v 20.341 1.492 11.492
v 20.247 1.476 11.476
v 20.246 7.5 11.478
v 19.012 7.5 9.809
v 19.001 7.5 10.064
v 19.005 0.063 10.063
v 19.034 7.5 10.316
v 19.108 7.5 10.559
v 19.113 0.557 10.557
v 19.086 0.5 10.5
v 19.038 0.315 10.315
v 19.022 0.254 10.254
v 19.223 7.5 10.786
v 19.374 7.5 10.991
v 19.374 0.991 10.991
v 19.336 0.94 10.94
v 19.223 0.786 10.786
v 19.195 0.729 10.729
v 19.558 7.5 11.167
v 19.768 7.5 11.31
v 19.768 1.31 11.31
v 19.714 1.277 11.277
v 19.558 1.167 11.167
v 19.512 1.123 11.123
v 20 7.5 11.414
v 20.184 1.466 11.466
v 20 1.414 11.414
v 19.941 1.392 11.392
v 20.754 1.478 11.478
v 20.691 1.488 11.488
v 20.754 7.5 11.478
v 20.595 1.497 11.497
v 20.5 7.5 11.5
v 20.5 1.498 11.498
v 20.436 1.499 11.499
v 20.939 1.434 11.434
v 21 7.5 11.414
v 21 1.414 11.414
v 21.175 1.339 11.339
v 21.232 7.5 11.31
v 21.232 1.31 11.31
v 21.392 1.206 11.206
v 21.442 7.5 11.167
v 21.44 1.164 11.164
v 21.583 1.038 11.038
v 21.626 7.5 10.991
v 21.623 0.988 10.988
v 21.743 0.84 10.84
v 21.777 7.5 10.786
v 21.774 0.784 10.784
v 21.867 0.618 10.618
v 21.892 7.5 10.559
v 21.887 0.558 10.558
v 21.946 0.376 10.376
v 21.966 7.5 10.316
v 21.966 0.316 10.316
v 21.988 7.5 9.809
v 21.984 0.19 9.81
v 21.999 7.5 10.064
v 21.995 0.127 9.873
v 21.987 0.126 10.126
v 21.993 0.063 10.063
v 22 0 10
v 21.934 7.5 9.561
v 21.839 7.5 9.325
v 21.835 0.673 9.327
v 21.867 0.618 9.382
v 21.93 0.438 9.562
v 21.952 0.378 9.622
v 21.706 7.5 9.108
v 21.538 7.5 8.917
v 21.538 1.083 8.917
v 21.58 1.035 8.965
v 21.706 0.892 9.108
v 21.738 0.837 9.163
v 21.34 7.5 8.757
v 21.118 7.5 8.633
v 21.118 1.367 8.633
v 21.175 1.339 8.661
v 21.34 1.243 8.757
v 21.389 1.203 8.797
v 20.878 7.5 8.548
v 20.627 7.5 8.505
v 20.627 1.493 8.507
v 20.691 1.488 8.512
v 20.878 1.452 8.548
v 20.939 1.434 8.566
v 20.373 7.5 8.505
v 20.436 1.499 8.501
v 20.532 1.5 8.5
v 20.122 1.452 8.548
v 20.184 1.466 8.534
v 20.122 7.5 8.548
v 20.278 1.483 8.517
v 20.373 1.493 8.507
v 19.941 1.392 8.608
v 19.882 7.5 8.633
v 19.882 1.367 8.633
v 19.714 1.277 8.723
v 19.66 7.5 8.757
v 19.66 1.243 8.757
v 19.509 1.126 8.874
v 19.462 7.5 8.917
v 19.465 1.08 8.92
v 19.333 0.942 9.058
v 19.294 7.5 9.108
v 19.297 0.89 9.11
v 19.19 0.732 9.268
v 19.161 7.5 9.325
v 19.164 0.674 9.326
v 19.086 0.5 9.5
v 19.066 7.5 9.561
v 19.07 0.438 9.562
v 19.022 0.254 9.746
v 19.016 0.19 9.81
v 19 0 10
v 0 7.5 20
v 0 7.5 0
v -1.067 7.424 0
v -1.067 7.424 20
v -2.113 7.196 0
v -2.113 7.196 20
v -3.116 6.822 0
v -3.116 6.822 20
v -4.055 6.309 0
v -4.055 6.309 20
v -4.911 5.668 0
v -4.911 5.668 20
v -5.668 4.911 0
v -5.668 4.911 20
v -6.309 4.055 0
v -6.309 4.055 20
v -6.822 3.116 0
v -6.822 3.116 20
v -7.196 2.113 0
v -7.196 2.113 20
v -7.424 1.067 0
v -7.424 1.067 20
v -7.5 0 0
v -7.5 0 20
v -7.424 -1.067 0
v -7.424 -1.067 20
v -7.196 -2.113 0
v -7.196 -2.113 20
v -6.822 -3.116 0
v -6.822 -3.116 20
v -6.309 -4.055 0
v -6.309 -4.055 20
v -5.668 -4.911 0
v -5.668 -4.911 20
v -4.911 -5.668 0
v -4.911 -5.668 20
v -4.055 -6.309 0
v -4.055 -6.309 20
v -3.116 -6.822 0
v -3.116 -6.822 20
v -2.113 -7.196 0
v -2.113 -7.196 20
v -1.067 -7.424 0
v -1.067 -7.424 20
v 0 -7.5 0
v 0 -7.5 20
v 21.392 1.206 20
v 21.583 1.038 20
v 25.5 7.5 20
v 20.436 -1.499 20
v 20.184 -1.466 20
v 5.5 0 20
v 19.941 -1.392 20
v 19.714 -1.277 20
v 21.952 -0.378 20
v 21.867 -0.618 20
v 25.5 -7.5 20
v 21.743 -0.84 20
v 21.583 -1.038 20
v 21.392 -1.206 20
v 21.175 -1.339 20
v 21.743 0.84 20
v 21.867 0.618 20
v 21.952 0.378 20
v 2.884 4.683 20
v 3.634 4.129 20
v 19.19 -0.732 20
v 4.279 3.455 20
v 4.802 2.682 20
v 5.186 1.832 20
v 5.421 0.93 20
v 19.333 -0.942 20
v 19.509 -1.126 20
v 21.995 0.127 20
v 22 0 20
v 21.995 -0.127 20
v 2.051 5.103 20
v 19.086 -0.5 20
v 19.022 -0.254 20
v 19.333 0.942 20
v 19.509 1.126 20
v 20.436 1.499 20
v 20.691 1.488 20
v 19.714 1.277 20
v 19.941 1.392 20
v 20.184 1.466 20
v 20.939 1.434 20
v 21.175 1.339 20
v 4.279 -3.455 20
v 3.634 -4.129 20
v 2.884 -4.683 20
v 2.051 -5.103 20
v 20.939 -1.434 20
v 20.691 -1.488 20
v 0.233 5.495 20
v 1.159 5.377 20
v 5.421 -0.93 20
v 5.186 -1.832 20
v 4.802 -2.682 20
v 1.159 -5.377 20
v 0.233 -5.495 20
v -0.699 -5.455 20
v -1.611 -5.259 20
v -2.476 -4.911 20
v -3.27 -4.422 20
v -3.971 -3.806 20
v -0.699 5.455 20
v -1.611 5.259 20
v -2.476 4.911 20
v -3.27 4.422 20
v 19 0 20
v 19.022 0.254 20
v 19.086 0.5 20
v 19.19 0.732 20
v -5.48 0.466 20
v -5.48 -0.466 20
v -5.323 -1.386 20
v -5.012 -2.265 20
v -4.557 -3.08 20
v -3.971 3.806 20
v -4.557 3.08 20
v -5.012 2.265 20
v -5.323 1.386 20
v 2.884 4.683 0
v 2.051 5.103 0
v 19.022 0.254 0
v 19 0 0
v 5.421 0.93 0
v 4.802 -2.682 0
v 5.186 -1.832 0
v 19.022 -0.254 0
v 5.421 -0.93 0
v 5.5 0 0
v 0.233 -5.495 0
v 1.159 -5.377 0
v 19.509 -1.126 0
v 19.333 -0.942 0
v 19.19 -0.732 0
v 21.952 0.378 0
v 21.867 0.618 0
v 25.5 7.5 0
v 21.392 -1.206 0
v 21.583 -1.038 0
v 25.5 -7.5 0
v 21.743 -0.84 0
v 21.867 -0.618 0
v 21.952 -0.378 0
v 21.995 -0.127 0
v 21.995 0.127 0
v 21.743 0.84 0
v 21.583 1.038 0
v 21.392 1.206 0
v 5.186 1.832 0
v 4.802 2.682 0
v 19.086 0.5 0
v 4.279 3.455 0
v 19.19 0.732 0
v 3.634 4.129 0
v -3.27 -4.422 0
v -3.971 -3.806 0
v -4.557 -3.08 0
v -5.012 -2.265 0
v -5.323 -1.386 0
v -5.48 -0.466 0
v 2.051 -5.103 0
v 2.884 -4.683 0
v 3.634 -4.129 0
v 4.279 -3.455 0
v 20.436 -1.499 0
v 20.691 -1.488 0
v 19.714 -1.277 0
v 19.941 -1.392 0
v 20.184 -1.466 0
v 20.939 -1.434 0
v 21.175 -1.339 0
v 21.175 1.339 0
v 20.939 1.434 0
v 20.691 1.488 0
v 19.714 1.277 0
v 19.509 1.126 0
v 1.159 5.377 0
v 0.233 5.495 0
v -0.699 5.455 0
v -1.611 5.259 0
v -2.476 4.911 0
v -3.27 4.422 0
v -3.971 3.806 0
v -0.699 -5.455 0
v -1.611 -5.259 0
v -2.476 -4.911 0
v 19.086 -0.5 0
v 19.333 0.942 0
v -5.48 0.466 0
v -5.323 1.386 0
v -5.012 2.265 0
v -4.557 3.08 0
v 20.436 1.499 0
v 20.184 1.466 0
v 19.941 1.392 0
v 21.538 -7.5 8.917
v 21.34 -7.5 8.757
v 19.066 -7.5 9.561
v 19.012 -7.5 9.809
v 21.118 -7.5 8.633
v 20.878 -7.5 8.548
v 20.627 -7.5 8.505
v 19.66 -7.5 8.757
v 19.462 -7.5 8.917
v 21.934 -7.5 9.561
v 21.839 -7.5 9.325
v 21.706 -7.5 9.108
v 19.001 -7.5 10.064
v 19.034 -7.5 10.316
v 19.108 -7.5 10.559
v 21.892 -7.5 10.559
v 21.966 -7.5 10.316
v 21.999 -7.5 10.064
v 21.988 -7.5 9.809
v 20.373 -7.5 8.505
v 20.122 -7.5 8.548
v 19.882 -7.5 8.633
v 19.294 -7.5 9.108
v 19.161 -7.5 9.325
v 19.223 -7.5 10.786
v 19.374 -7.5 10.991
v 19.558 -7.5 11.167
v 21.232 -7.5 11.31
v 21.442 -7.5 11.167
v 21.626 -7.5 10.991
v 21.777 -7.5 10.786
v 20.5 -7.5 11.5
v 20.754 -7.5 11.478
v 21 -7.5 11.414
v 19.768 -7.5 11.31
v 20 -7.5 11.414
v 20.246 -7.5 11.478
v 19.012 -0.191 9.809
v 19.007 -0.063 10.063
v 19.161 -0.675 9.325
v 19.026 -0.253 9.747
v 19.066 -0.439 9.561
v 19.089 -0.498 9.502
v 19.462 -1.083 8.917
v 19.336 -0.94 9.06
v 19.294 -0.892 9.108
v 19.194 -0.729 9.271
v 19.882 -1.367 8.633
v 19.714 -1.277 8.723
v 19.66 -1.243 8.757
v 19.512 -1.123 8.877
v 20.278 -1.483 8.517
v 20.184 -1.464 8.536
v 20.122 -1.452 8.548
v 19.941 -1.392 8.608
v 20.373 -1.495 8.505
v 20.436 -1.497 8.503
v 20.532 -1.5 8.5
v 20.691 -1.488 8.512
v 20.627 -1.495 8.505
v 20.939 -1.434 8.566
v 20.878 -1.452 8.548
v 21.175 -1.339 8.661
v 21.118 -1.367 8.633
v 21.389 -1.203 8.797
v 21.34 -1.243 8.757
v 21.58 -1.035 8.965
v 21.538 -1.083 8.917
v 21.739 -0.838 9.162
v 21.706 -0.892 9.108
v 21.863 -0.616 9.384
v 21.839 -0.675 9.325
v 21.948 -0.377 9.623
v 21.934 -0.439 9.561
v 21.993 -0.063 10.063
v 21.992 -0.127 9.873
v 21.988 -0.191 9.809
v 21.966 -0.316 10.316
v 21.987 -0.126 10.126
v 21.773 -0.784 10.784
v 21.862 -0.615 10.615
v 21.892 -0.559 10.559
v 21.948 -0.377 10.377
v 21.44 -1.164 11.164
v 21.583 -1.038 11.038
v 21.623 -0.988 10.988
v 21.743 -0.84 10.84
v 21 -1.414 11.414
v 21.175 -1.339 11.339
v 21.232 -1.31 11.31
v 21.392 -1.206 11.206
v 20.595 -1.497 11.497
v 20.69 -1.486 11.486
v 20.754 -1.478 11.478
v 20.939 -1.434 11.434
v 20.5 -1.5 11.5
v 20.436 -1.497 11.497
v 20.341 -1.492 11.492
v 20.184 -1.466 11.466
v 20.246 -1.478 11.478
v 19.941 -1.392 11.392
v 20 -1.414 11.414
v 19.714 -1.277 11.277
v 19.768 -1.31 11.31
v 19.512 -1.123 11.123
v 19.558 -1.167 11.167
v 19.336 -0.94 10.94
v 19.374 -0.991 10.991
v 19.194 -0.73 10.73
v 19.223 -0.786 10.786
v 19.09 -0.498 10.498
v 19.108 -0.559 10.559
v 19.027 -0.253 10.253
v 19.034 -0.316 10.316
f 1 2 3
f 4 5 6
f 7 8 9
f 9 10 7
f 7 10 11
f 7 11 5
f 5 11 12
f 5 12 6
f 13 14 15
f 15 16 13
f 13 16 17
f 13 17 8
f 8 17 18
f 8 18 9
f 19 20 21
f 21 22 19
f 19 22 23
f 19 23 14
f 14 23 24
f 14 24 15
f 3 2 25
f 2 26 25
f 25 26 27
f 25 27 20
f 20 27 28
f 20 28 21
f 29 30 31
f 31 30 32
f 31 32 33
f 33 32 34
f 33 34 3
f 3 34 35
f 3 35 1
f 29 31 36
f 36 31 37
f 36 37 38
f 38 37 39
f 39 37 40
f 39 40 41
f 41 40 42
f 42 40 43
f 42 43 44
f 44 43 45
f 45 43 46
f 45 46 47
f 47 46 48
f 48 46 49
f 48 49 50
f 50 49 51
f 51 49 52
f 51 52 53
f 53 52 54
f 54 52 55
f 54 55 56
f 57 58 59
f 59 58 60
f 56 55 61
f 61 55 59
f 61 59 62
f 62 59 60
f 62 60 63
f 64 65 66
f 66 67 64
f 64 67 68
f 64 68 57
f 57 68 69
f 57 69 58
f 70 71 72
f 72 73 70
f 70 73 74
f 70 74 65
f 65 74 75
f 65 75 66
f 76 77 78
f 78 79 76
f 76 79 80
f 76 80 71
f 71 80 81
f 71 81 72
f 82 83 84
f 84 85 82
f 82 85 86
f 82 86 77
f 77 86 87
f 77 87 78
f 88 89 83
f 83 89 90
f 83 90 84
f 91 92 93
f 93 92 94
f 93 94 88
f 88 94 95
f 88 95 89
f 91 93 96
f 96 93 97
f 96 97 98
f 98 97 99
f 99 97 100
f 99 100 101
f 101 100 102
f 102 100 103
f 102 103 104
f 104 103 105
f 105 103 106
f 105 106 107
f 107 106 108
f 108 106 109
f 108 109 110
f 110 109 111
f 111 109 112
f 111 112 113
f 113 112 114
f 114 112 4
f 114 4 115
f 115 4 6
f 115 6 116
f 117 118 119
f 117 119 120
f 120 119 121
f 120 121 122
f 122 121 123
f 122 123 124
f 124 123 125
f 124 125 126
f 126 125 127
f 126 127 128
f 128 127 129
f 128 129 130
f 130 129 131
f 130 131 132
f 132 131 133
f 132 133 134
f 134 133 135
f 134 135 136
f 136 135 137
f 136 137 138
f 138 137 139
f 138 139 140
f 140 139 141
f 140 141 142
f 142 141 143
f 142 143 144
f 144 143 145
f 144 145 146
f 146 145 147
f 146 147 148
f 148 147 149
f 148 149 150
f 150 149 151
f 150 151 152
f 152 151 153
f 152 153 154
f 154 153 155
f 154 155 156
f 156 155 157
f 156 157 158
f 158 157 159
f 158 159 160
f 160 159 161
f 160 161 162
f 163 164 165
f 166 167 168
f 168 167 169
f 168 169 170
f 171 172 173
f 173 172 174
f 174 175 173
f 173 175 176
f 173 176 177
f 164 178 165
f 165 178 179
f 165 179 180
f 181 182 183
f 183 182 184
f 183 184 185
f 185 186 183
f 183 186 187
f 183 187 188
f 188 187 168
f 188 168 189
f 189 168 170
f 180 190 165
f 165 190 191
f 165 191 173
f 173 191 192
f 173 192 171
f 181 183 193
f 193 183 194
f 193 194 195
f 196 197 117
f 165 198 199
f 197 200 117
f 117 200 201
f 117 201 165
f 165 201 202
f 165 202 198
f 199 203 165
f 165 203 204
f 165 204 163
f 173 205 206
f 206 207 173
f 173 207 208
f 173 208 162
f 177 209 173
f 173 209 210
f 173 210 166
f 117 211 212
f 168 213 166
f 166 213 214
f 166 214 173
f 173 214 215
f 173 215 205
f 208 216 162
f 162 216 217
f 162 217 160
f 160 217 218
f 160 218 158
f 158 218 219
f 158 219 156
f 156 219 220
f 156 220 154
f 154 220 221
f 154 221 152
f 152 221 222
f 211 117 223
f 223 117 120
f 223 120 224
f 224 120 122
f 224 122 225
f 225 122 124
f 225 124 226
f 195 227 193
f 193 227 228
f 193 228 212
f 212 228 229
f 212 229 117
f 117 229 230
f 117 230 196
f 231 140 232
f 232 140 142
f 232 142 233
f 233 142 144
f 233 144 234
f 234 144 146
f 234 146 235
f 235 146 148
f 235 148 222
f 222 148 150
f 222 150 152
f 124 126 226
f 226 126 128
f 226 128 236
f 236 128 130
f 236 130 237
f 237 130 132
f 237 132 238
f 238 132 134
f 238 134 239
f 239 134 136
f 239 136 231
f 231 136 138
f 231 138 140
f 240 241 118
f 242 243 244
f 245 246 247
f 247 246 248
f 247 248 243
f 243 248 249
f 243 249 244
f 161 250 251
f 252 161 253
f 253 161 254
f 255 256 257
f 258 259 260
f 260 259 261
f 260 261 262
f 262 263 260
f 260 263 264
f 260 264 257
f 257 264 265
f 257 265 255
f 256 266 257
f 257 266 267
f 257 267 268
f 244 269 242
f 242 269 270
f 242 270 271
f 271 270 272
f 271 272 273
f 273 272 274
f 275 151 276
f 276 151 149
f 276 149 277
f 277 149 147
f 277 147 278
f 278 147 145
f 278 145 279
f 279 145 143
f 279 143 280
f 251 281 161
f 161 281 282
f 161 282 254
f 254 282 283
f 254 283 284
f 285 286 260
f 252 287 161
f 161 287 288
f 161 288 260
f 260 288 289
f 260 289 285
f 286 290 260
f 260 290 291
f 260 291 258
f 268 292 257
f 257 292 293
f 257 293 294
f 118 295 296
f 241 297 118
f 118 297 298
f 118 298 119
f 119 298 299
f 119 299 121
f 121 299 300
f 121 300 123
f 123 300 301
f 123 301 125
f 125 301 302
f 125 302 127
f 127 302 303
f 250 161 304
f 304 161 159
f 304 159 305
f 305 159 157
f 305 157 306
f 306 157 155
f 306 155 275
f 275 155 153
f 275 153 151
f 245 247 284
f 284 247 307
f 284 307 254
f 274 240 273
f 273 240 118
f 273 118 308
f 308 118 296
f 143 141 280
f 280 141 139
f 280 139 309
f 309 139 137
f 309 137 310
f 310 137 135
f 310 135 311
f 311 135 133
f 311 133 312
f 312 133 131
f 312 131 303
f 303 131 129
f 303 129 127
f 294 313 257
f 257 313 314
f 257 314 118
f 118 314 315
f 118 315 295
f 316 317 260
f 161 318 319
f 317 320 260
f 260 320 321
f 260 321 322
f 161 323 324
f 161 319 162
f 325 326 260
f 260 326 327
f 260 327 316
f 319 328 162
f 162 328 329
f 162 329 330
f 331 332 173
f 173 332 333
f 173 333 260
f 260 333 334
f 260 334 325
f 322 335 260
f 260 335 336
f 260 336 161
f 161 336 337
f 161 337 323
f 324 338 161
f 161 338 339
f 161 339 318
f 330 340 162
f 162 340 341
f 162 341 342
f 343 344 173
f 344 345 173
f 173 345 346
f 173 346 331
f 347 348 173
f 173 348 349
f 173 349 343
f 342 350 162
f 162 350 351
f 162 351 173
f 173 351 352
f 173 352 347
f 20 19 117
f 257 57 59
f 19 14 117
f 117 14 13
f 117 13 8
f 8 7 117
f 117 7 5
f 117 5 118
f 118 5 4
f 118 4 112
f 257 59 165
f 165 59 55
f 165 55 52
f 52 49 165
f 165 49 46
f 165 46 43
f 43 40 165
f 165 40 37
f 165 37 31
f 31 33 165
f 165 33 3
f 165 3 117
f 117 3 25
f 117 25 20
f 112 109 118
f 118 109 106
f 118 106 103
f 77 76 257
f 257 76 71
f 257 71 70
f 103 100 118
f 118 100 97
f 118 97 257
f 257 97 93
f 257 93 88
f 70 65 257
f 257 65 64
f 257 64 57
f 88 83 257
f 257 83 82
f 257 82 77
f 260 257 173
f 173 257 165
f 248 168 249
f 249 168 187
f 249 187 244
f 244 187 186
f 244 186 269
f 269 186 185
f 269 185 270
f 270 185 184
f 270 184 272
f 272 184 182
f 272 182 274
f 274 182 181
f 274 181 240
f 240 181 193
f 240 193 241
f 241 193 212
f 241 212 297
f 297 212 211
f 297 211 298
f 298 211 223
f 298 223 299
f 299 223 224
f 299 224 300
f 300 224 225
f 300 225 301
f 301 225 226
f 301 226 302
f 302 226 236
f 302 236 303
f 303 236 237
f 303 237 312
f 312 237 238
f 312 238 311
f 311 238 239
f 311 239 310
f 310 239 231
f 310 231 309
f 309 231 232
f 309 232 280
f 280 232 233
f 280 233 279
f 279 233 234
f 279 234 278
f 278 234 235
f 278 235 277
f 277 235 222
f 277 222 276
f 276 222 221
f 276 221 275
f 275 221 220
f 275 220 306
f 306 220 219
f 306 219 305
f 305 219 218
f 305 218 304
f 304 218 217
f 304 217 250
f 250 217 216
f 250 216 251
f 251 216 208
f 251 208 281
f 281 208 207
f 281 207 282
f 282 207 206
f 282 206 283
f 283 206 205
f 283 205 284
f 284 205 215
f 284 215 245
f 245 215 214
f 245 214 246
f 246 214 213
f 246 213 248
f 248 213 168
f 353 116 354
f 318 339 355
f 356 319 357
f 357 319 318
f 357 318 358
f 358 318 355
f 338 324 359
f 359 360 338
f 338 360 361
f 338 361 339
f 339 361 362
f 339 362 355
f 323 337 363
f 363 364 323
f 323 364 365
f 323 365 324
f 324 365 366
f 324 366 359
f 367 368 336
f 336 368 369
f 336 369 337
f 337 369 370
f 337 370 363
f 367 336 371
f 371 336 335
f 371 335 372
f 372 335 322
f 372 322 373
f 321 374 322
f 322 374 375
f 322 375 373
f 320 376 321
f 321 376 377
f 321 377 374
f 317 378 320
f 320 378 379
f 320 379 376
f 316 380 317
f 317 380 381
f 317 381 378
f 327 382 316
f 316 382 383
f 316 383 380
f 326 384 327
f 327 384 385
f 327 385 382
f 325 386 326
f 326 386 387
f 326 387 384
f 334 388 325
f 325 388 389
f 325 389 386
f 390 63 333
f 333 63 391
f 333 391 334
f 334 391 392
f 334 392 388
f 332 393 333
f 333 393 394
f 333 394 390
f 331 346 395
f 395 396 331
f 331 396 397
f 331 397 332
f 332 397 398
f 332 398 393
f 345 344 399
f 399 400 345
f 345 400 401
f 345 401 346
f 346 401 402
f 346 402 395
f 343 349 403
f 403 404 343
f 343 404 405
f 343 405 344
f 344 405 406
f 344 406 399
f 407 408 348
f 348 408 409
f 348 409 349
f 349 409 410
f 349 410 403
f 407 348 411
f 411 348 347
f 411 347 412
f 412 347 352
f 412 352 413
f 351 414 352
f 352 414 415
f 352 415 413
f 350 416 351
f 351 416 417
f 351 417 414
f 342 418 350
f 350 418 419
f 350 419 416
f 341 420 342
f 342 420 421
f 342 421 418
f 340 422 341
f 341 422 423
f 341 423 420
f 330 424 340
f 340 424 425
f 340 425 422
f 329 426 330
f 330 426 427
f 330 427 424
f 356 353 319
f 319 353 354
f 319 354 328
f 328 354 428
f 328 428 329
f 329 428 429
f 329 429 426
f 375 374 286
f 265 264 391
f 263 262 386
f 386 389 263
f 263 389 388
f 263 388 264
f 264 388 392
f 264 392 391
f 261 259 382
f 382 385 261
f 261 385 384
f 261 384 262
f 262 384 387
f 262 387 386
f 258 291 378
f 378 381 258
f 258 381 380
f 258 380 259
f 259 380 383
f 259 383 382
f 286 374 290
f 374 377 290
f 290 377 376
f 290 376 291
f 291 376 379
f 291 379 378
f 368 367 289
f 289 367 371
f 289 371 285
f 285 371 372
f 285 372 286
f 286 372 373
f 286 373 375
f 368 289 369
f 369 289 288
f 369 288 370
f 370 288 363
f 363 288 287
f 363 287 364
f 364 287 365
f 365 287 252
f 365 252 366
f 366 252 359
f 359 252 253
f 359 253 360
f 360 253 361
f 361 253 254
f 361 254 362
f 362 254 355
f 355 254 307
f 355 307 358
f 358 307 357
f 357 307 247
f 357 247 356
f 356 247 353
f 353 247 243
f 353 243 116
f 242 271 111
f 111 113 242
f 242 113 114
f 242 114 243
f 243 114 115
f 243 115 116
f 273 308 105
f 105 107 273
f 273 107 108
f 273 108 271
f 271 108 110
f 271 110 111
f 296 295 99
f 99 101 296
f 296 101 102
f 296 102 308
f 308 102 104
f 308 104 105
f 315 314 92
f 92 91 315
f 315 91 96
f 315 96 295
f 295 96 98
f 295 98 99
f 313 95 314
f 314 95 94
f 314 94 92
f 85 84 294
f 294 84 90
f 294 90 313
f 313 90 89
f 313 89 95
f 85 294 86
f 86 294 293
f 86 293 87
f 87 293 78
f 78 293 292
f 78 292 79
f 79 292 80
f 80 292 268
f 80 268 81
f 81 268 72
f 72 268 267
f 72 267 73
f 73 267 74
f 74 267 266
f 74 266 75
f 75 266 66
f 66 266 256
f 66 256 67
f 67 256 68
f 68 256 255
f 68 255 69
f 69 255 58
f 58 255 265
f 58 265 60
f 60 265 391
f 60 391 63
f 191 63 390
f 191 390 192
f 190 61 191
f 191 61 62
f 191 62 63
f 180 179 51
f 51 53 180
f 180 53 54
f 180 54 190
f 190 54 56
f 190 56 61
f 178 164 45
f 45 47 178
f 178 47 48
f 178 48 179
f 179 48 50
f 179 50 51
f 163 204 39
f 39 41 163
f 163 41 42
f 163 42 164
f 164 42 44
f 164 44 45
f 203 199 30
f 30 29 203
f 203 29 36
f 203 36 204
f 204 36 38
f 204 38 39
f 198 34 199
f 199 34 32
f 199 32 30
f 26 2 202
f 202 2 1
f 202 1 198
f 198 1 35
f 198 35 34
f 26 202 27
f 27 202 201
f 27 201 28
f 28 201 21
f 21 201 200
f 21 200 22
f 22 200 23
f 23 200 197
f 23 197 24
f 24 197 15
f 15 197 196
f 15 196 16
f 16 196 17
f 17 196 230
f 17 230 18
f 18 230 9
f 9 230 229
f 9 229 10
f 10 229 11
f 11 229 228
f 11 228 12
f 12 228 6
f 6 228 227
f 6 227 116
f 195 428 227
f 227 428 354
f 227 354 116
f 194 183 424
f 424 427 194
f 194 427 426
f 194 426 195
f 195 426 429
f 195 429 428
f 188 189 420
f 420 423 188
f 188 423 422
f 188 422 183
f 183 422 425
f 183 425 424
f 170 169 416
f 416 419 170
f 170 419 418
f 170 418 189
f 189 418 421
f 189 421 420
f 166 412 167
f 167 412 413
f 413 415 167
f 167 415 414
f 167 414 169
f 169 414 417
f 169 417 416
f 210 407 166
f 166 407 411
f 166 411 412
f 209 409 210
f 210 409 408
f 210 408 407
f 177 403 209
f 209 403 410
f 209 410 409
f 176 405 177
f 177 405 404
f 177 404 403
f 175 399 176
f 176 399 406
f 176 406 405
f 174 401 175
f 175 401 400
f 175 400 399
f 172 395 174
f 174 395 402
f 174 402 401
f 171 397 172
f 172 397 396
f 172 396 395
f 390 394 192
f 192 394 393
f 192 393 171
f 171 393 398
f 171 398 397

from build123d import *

# Parameters (mm, degrees)
SKETCH1_R           = 7.5
BOSS_EXTRUDE1_DEPTH = 20
SKETCH2_W           = 20
SKETCH2_H           = 15
BOSS_EXTRUDE2_DEPTH = 25.5
SKETCH3_R           = 5.5
CUT_EXTRUDE1_DEPTH  = 26
SKETCH4_R           = 1.5
CUT_EXTRUDE2_DEPTH  = 30
SKETCH5_R           = 1.5
CUT_EXTRUDE3_DEPTH  = 30


with BuildPart() as part:
    # Sketch1 → Boss-Extrude1 (new body)
    with BuildSketch(Plane.XY):
        Circle(SKETCH1_R)
    extrude(amount=BOSS_EXTRUDE1_DEPTH)

    # Sketch2 → Boss-Extrude2 (add)
    with BuildSketch(Plane(origin=(0, 0, 0), x_dir=(0, 0, -1), z_dir=(1, 0, 0))):
        with Locations((-10, 0)):
            Rectangle(SKETCH2_W, SKETCH2_H)
    extrude(amount=BOSS_EXTRUDE2_DEPTH)

    # Sketch3 → Cut-Extrude1 (cut)
    with BuildSketch(Plane.XY.offset(20)):
        Circle(SKETCH3_R)
    extrude(amount=-CUT_EXTRUDE1_DEPTH, mode=Mode.SUBTRACT)

    # Sketch4 → Cut-Extrude2 (cut)
    with BuildSketch(Plane(origin=(0, 7.5, 0), x_dir=(1, 0, 0), z_dir=(0, 1, 0))):
        with Locations(Location((20.5, -10, 0), (0, 0, 270))):
            Circle(SKETCH4_R)
    extrude(amount=-CUT_EXTRUDE2_DEPTH, mode=Mode.SUBTRACT)

    # Sketch5 → Cut-Extrude3 (cut)
    with BuildSketch(Plane(origin=(0, 0, 0), x_dir=(-1, 0, 0), z_dir=(0, 0, -1))):
        with Locations((-20.5, 0)):
            Circle(SKETCH5_R)
    extrude(amount=-CUT_EXTRUDE3_DEPTH, mode=Mode.SUBTRACT)


solid = part.part
